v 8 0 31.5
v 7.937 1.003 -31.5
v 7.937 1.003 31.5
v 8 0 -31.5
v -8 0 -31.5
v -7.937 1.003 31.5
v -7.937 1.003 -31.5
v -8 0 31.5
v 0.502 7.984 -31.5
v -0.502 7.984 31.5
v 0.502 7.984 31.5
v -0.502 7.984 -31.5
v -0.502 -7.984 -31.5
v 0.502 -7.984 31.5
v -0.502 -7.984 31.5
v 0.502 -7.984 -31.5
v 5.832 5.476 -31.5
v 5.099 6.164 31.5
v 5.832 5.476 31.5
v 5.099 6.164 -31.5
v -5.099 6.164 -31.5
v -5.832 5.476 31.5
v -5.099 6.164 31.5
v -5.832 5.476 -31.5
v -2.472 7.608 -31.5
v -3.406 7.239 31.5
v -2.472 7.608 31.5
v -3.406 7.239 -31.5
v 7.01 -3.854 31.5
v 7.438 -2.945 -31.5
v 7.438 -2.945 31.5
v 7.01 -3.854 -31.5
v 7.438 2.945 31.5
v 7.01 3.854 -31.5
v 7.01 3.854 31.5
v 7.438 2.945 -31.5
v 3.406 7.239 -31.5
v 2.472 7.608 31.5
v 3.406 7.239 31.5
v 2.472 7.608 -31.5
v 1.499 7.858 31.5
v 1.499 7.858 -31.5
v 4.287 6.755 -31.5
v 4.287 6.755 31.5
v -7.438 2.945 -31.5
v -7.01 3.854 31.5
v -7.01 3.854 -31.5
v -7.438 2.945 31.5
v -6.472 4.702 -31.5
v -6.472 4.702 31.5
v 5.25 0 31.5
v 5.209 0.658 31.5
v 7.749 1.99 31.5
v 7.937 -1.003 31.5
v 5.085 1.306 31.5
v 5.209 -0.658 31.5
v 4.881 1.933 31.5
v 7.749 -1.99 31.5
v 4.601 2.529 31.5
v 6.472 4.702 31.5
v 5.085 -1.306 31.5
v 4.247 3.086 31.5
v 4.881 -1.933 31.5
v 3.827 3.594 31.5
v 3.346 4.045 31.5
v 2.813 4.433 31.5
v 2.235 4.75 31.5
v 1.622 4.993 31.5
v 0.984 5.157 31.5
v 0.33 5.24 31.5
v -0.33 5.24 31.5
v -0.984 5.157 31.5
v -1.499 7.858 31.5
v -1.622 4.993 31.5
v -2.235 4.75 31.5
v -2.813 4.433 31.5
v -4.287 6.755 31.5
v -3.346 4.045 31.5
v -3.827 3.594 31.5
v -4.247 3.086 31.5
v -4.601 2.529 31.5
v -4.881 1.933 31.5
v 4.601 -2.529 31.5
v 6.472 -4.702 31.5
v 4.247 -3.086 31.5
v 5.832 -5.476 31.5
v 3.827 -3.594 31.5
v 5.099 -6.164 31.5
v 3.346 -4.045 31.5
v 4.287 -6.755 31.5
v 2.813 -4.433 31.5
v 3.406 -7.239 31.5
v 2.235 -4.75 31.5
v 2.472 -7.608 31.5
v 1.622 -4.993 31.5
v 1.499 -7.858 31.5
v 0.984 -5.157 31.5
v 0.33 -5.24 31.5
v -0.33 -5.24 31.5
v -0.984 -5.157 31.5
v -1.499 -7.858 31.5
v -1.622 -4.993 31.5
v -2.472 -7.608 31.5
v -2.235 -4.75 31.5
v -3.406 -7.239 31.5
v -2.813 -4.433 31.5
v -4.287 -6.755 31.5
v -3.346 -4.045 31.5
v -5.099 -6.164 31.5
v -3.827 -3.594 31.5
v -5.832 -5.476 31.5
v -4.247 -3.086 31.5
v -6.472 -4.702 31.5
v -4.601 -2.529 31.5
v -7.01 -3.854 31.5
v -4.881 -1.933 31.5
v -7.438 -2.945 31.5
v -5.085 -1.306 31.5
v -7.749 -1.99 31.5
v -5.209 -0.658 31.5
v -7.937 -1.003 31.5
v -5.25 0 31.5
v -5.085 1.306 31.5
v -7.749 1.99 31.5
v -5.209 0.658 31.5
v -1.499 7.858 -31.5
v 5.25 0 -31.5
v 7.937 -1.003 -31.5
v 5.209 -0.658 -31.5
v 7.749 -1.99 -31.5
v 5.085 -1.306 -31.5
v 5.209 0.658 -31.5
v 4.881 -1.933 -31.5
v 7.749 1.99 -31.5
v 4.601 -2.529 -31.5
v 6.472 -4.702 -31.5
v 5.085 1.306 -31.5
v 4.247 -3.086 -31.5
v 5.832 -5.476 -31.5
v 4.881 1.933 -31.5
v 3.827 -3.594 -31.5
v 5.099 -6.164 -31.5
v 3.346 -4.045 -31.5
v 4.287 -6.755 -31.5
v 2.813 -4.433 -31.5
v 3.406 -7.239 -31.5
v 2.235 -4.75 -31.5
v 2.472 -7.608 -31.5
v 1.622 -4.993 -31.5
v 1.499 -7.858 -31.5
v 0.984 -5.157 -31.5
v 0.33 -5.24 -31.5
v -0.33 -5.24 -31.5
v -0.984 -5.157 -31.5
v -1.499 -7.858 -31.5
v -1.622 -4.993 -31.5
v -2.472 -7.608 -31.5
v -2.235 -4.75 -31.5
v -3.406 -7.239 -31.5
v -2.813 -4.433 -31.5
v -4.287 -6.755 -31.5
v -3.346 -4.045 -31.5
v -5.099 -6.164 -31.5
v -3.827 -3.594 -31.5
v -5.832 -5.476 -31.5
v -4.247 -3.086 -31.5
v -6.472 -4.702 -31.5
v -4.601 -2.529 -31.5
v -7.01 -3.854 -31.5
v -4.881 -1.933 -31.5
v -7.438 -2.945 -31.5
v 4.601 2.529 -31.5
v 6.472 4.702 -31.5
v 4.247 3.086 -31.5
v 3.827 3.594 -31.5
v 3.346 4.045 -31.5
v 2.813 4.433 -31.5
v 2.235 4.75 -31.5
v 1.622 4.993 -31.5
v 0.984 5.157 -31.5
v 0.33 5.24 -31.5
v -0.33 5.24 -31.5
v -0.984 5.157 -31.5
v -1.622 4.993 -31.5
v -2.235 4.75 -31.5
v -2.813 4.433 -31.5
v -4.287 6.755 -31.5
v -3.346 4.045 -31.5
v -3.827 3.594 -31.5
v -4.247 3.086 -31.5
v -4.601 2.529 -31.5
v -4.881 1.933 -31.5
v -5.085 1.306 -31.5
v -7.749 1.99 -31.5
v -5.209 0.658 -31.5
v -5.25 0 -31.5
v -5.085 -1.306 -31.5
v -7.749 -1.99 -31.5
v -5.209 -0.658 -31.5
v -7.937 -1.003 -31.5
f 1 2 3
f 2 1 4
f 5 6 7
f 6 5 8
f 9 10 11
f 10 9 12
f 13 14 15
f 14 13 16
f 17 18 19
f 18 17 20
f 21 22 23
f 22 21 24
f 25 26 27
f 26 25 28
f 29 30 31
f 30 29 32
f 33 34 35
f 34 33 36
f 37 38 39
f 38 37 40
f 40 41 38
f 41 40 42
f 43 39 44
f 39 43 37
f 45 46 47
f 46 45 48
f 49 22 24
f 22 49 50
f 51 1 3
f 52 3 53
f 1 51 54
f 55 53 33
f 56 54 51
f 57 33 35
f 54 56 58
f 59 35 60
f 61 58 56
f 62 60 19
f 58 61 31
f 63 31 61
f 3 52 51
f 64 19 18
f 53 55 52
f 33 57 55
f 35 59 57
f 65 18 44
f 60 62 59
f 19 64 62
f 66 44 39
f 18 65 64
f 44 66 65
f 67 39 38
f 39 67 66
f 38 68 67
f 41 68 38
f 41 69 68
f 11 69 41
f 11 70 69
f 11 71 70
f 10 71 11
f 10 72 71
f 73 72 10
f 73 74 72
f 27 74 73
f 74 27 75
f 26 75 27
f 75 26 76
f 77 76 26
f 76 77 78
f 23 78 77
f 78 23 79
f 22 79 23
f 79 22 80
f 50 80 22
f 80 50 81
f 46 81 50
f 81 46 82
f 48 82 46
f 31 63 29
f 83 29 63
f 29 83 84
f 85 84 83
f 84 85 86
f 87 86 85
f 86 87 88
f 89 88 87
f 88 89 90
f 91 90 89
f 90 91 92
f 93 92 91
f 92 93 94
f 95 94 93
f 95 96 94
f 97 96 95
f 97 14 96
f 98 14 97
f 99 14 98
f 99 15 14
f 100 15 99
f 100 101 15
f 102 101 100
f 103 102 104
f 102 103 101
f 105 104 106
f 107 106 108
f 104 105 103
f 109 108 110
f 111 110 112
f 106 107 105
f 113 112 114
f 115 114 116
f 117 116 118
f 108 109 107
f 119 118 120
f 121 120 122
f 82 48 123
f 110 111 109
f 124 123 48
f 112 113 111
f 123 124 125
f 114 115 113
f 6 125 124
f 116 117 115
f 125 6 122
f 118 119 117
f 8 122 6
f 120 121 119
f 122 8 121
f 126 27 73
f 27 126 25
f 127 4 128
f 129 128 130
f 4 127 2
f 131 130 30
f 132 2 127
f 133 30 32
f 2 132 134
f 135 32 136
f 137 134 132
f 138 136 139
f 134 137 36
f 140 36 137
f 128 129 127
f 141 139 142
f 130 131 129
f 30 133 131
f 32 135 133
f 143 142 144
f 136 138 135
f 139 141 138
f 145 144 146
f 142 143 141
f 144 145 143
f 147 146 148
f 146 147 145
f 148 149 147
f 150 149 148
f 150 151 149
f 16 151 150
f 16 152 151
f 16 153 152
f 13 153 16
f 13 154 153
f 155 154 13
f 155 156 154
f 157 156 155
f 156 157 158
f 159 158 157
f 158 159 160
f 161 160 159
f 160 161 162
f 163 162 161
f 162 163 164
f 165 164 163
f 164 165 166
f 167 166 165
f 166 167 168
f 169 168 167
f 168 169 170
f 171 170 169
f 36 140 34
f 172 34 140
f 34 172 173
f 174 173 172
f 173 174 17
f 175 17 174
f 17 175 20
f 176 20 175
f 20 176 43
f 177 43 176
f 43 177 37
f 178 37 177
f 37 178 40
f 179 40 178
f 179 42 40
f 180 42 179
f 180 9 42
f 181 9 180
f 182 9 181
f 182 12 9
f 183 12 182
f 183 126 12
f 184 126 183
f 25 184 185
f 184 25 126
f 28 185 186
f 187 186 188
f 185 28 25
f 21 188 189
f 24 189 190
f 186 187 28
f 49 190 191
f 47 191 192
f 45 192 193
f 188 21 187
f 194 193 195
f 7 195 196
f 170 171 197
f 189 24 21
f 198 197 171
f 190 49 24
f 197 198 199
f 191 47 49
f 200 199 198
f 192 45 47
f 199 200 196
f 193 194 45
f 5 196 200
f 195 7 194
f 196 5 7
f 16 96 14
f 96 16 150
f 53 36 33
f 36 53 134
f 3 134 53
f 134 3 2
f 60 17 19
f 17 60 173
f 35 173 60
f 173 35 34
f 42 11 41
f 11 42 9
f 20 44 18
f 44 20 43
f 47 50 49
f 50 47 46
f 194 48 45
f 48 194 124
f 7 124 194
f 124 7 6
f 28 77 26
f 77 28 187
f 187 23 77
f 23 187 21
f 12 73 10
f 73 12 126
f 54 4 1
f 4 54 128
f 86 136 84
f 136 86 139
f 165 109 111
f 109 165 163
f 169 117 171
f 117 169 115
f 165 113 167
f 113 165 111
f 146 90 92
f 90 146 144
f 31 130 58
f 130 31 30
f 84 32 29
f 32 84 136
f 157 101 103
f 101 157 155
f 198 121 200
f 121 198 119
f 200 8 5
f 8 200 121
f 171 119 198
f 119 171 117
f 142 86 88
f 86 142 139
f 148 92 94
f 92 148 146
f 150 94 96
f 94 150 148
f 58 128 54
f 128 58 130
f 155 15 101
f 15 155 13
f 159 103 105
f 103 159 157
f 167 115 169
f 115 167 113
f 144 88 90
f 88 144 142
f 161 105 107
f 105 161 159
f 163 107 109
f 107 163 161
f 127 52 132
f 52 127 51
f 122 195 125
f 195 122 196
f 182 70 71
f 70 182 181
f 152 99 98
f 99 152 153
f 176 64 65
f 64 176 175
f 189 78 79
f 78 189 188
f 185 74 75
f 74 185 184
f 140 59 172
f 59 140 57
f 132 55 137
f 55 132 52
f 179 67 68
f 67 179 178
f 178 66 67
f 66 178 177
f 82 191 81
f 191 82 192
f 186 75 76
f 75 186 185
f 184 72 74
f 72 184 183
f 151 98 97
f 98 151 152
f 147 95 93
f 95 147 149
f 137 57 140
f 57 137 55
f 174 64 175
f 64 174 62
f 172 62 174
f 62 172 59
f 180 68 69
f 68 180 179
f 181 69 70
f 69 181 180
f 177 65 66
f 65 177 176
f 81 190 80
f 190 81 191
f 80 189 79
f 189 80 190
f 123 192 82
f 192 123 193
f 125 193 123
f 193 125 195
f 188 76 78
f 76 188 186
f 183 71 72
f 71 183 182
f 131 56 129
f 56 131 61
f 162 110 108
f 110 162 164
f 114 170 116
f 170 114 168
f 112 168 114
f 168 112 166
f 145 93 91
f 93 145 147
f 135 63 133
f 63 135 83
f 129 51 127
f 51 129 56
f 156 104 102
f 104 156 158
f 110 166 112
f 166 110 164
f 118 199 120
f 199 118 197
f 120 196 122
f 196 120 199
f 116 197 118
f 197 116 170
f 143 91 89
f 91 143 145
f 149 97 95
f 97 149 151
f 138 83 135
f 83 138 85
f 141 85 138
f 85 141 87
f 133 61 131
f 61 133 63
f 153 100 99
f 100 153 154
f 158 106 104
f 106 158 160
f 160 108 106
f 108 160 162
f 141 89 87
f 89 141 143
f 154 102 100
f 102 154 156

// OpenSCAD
$fn = 50;


difference() {
	union() {
		translate(v = [0, 0, -31.5000000000]) {
			cylinder(h = 63, r = 8.0000000000);
		}
	}
	union() {
		translate(v = [0, 0, -100.0000000000]) {
			cylinder(h = 200, r = 5.2500000000);
		}
	}
}
